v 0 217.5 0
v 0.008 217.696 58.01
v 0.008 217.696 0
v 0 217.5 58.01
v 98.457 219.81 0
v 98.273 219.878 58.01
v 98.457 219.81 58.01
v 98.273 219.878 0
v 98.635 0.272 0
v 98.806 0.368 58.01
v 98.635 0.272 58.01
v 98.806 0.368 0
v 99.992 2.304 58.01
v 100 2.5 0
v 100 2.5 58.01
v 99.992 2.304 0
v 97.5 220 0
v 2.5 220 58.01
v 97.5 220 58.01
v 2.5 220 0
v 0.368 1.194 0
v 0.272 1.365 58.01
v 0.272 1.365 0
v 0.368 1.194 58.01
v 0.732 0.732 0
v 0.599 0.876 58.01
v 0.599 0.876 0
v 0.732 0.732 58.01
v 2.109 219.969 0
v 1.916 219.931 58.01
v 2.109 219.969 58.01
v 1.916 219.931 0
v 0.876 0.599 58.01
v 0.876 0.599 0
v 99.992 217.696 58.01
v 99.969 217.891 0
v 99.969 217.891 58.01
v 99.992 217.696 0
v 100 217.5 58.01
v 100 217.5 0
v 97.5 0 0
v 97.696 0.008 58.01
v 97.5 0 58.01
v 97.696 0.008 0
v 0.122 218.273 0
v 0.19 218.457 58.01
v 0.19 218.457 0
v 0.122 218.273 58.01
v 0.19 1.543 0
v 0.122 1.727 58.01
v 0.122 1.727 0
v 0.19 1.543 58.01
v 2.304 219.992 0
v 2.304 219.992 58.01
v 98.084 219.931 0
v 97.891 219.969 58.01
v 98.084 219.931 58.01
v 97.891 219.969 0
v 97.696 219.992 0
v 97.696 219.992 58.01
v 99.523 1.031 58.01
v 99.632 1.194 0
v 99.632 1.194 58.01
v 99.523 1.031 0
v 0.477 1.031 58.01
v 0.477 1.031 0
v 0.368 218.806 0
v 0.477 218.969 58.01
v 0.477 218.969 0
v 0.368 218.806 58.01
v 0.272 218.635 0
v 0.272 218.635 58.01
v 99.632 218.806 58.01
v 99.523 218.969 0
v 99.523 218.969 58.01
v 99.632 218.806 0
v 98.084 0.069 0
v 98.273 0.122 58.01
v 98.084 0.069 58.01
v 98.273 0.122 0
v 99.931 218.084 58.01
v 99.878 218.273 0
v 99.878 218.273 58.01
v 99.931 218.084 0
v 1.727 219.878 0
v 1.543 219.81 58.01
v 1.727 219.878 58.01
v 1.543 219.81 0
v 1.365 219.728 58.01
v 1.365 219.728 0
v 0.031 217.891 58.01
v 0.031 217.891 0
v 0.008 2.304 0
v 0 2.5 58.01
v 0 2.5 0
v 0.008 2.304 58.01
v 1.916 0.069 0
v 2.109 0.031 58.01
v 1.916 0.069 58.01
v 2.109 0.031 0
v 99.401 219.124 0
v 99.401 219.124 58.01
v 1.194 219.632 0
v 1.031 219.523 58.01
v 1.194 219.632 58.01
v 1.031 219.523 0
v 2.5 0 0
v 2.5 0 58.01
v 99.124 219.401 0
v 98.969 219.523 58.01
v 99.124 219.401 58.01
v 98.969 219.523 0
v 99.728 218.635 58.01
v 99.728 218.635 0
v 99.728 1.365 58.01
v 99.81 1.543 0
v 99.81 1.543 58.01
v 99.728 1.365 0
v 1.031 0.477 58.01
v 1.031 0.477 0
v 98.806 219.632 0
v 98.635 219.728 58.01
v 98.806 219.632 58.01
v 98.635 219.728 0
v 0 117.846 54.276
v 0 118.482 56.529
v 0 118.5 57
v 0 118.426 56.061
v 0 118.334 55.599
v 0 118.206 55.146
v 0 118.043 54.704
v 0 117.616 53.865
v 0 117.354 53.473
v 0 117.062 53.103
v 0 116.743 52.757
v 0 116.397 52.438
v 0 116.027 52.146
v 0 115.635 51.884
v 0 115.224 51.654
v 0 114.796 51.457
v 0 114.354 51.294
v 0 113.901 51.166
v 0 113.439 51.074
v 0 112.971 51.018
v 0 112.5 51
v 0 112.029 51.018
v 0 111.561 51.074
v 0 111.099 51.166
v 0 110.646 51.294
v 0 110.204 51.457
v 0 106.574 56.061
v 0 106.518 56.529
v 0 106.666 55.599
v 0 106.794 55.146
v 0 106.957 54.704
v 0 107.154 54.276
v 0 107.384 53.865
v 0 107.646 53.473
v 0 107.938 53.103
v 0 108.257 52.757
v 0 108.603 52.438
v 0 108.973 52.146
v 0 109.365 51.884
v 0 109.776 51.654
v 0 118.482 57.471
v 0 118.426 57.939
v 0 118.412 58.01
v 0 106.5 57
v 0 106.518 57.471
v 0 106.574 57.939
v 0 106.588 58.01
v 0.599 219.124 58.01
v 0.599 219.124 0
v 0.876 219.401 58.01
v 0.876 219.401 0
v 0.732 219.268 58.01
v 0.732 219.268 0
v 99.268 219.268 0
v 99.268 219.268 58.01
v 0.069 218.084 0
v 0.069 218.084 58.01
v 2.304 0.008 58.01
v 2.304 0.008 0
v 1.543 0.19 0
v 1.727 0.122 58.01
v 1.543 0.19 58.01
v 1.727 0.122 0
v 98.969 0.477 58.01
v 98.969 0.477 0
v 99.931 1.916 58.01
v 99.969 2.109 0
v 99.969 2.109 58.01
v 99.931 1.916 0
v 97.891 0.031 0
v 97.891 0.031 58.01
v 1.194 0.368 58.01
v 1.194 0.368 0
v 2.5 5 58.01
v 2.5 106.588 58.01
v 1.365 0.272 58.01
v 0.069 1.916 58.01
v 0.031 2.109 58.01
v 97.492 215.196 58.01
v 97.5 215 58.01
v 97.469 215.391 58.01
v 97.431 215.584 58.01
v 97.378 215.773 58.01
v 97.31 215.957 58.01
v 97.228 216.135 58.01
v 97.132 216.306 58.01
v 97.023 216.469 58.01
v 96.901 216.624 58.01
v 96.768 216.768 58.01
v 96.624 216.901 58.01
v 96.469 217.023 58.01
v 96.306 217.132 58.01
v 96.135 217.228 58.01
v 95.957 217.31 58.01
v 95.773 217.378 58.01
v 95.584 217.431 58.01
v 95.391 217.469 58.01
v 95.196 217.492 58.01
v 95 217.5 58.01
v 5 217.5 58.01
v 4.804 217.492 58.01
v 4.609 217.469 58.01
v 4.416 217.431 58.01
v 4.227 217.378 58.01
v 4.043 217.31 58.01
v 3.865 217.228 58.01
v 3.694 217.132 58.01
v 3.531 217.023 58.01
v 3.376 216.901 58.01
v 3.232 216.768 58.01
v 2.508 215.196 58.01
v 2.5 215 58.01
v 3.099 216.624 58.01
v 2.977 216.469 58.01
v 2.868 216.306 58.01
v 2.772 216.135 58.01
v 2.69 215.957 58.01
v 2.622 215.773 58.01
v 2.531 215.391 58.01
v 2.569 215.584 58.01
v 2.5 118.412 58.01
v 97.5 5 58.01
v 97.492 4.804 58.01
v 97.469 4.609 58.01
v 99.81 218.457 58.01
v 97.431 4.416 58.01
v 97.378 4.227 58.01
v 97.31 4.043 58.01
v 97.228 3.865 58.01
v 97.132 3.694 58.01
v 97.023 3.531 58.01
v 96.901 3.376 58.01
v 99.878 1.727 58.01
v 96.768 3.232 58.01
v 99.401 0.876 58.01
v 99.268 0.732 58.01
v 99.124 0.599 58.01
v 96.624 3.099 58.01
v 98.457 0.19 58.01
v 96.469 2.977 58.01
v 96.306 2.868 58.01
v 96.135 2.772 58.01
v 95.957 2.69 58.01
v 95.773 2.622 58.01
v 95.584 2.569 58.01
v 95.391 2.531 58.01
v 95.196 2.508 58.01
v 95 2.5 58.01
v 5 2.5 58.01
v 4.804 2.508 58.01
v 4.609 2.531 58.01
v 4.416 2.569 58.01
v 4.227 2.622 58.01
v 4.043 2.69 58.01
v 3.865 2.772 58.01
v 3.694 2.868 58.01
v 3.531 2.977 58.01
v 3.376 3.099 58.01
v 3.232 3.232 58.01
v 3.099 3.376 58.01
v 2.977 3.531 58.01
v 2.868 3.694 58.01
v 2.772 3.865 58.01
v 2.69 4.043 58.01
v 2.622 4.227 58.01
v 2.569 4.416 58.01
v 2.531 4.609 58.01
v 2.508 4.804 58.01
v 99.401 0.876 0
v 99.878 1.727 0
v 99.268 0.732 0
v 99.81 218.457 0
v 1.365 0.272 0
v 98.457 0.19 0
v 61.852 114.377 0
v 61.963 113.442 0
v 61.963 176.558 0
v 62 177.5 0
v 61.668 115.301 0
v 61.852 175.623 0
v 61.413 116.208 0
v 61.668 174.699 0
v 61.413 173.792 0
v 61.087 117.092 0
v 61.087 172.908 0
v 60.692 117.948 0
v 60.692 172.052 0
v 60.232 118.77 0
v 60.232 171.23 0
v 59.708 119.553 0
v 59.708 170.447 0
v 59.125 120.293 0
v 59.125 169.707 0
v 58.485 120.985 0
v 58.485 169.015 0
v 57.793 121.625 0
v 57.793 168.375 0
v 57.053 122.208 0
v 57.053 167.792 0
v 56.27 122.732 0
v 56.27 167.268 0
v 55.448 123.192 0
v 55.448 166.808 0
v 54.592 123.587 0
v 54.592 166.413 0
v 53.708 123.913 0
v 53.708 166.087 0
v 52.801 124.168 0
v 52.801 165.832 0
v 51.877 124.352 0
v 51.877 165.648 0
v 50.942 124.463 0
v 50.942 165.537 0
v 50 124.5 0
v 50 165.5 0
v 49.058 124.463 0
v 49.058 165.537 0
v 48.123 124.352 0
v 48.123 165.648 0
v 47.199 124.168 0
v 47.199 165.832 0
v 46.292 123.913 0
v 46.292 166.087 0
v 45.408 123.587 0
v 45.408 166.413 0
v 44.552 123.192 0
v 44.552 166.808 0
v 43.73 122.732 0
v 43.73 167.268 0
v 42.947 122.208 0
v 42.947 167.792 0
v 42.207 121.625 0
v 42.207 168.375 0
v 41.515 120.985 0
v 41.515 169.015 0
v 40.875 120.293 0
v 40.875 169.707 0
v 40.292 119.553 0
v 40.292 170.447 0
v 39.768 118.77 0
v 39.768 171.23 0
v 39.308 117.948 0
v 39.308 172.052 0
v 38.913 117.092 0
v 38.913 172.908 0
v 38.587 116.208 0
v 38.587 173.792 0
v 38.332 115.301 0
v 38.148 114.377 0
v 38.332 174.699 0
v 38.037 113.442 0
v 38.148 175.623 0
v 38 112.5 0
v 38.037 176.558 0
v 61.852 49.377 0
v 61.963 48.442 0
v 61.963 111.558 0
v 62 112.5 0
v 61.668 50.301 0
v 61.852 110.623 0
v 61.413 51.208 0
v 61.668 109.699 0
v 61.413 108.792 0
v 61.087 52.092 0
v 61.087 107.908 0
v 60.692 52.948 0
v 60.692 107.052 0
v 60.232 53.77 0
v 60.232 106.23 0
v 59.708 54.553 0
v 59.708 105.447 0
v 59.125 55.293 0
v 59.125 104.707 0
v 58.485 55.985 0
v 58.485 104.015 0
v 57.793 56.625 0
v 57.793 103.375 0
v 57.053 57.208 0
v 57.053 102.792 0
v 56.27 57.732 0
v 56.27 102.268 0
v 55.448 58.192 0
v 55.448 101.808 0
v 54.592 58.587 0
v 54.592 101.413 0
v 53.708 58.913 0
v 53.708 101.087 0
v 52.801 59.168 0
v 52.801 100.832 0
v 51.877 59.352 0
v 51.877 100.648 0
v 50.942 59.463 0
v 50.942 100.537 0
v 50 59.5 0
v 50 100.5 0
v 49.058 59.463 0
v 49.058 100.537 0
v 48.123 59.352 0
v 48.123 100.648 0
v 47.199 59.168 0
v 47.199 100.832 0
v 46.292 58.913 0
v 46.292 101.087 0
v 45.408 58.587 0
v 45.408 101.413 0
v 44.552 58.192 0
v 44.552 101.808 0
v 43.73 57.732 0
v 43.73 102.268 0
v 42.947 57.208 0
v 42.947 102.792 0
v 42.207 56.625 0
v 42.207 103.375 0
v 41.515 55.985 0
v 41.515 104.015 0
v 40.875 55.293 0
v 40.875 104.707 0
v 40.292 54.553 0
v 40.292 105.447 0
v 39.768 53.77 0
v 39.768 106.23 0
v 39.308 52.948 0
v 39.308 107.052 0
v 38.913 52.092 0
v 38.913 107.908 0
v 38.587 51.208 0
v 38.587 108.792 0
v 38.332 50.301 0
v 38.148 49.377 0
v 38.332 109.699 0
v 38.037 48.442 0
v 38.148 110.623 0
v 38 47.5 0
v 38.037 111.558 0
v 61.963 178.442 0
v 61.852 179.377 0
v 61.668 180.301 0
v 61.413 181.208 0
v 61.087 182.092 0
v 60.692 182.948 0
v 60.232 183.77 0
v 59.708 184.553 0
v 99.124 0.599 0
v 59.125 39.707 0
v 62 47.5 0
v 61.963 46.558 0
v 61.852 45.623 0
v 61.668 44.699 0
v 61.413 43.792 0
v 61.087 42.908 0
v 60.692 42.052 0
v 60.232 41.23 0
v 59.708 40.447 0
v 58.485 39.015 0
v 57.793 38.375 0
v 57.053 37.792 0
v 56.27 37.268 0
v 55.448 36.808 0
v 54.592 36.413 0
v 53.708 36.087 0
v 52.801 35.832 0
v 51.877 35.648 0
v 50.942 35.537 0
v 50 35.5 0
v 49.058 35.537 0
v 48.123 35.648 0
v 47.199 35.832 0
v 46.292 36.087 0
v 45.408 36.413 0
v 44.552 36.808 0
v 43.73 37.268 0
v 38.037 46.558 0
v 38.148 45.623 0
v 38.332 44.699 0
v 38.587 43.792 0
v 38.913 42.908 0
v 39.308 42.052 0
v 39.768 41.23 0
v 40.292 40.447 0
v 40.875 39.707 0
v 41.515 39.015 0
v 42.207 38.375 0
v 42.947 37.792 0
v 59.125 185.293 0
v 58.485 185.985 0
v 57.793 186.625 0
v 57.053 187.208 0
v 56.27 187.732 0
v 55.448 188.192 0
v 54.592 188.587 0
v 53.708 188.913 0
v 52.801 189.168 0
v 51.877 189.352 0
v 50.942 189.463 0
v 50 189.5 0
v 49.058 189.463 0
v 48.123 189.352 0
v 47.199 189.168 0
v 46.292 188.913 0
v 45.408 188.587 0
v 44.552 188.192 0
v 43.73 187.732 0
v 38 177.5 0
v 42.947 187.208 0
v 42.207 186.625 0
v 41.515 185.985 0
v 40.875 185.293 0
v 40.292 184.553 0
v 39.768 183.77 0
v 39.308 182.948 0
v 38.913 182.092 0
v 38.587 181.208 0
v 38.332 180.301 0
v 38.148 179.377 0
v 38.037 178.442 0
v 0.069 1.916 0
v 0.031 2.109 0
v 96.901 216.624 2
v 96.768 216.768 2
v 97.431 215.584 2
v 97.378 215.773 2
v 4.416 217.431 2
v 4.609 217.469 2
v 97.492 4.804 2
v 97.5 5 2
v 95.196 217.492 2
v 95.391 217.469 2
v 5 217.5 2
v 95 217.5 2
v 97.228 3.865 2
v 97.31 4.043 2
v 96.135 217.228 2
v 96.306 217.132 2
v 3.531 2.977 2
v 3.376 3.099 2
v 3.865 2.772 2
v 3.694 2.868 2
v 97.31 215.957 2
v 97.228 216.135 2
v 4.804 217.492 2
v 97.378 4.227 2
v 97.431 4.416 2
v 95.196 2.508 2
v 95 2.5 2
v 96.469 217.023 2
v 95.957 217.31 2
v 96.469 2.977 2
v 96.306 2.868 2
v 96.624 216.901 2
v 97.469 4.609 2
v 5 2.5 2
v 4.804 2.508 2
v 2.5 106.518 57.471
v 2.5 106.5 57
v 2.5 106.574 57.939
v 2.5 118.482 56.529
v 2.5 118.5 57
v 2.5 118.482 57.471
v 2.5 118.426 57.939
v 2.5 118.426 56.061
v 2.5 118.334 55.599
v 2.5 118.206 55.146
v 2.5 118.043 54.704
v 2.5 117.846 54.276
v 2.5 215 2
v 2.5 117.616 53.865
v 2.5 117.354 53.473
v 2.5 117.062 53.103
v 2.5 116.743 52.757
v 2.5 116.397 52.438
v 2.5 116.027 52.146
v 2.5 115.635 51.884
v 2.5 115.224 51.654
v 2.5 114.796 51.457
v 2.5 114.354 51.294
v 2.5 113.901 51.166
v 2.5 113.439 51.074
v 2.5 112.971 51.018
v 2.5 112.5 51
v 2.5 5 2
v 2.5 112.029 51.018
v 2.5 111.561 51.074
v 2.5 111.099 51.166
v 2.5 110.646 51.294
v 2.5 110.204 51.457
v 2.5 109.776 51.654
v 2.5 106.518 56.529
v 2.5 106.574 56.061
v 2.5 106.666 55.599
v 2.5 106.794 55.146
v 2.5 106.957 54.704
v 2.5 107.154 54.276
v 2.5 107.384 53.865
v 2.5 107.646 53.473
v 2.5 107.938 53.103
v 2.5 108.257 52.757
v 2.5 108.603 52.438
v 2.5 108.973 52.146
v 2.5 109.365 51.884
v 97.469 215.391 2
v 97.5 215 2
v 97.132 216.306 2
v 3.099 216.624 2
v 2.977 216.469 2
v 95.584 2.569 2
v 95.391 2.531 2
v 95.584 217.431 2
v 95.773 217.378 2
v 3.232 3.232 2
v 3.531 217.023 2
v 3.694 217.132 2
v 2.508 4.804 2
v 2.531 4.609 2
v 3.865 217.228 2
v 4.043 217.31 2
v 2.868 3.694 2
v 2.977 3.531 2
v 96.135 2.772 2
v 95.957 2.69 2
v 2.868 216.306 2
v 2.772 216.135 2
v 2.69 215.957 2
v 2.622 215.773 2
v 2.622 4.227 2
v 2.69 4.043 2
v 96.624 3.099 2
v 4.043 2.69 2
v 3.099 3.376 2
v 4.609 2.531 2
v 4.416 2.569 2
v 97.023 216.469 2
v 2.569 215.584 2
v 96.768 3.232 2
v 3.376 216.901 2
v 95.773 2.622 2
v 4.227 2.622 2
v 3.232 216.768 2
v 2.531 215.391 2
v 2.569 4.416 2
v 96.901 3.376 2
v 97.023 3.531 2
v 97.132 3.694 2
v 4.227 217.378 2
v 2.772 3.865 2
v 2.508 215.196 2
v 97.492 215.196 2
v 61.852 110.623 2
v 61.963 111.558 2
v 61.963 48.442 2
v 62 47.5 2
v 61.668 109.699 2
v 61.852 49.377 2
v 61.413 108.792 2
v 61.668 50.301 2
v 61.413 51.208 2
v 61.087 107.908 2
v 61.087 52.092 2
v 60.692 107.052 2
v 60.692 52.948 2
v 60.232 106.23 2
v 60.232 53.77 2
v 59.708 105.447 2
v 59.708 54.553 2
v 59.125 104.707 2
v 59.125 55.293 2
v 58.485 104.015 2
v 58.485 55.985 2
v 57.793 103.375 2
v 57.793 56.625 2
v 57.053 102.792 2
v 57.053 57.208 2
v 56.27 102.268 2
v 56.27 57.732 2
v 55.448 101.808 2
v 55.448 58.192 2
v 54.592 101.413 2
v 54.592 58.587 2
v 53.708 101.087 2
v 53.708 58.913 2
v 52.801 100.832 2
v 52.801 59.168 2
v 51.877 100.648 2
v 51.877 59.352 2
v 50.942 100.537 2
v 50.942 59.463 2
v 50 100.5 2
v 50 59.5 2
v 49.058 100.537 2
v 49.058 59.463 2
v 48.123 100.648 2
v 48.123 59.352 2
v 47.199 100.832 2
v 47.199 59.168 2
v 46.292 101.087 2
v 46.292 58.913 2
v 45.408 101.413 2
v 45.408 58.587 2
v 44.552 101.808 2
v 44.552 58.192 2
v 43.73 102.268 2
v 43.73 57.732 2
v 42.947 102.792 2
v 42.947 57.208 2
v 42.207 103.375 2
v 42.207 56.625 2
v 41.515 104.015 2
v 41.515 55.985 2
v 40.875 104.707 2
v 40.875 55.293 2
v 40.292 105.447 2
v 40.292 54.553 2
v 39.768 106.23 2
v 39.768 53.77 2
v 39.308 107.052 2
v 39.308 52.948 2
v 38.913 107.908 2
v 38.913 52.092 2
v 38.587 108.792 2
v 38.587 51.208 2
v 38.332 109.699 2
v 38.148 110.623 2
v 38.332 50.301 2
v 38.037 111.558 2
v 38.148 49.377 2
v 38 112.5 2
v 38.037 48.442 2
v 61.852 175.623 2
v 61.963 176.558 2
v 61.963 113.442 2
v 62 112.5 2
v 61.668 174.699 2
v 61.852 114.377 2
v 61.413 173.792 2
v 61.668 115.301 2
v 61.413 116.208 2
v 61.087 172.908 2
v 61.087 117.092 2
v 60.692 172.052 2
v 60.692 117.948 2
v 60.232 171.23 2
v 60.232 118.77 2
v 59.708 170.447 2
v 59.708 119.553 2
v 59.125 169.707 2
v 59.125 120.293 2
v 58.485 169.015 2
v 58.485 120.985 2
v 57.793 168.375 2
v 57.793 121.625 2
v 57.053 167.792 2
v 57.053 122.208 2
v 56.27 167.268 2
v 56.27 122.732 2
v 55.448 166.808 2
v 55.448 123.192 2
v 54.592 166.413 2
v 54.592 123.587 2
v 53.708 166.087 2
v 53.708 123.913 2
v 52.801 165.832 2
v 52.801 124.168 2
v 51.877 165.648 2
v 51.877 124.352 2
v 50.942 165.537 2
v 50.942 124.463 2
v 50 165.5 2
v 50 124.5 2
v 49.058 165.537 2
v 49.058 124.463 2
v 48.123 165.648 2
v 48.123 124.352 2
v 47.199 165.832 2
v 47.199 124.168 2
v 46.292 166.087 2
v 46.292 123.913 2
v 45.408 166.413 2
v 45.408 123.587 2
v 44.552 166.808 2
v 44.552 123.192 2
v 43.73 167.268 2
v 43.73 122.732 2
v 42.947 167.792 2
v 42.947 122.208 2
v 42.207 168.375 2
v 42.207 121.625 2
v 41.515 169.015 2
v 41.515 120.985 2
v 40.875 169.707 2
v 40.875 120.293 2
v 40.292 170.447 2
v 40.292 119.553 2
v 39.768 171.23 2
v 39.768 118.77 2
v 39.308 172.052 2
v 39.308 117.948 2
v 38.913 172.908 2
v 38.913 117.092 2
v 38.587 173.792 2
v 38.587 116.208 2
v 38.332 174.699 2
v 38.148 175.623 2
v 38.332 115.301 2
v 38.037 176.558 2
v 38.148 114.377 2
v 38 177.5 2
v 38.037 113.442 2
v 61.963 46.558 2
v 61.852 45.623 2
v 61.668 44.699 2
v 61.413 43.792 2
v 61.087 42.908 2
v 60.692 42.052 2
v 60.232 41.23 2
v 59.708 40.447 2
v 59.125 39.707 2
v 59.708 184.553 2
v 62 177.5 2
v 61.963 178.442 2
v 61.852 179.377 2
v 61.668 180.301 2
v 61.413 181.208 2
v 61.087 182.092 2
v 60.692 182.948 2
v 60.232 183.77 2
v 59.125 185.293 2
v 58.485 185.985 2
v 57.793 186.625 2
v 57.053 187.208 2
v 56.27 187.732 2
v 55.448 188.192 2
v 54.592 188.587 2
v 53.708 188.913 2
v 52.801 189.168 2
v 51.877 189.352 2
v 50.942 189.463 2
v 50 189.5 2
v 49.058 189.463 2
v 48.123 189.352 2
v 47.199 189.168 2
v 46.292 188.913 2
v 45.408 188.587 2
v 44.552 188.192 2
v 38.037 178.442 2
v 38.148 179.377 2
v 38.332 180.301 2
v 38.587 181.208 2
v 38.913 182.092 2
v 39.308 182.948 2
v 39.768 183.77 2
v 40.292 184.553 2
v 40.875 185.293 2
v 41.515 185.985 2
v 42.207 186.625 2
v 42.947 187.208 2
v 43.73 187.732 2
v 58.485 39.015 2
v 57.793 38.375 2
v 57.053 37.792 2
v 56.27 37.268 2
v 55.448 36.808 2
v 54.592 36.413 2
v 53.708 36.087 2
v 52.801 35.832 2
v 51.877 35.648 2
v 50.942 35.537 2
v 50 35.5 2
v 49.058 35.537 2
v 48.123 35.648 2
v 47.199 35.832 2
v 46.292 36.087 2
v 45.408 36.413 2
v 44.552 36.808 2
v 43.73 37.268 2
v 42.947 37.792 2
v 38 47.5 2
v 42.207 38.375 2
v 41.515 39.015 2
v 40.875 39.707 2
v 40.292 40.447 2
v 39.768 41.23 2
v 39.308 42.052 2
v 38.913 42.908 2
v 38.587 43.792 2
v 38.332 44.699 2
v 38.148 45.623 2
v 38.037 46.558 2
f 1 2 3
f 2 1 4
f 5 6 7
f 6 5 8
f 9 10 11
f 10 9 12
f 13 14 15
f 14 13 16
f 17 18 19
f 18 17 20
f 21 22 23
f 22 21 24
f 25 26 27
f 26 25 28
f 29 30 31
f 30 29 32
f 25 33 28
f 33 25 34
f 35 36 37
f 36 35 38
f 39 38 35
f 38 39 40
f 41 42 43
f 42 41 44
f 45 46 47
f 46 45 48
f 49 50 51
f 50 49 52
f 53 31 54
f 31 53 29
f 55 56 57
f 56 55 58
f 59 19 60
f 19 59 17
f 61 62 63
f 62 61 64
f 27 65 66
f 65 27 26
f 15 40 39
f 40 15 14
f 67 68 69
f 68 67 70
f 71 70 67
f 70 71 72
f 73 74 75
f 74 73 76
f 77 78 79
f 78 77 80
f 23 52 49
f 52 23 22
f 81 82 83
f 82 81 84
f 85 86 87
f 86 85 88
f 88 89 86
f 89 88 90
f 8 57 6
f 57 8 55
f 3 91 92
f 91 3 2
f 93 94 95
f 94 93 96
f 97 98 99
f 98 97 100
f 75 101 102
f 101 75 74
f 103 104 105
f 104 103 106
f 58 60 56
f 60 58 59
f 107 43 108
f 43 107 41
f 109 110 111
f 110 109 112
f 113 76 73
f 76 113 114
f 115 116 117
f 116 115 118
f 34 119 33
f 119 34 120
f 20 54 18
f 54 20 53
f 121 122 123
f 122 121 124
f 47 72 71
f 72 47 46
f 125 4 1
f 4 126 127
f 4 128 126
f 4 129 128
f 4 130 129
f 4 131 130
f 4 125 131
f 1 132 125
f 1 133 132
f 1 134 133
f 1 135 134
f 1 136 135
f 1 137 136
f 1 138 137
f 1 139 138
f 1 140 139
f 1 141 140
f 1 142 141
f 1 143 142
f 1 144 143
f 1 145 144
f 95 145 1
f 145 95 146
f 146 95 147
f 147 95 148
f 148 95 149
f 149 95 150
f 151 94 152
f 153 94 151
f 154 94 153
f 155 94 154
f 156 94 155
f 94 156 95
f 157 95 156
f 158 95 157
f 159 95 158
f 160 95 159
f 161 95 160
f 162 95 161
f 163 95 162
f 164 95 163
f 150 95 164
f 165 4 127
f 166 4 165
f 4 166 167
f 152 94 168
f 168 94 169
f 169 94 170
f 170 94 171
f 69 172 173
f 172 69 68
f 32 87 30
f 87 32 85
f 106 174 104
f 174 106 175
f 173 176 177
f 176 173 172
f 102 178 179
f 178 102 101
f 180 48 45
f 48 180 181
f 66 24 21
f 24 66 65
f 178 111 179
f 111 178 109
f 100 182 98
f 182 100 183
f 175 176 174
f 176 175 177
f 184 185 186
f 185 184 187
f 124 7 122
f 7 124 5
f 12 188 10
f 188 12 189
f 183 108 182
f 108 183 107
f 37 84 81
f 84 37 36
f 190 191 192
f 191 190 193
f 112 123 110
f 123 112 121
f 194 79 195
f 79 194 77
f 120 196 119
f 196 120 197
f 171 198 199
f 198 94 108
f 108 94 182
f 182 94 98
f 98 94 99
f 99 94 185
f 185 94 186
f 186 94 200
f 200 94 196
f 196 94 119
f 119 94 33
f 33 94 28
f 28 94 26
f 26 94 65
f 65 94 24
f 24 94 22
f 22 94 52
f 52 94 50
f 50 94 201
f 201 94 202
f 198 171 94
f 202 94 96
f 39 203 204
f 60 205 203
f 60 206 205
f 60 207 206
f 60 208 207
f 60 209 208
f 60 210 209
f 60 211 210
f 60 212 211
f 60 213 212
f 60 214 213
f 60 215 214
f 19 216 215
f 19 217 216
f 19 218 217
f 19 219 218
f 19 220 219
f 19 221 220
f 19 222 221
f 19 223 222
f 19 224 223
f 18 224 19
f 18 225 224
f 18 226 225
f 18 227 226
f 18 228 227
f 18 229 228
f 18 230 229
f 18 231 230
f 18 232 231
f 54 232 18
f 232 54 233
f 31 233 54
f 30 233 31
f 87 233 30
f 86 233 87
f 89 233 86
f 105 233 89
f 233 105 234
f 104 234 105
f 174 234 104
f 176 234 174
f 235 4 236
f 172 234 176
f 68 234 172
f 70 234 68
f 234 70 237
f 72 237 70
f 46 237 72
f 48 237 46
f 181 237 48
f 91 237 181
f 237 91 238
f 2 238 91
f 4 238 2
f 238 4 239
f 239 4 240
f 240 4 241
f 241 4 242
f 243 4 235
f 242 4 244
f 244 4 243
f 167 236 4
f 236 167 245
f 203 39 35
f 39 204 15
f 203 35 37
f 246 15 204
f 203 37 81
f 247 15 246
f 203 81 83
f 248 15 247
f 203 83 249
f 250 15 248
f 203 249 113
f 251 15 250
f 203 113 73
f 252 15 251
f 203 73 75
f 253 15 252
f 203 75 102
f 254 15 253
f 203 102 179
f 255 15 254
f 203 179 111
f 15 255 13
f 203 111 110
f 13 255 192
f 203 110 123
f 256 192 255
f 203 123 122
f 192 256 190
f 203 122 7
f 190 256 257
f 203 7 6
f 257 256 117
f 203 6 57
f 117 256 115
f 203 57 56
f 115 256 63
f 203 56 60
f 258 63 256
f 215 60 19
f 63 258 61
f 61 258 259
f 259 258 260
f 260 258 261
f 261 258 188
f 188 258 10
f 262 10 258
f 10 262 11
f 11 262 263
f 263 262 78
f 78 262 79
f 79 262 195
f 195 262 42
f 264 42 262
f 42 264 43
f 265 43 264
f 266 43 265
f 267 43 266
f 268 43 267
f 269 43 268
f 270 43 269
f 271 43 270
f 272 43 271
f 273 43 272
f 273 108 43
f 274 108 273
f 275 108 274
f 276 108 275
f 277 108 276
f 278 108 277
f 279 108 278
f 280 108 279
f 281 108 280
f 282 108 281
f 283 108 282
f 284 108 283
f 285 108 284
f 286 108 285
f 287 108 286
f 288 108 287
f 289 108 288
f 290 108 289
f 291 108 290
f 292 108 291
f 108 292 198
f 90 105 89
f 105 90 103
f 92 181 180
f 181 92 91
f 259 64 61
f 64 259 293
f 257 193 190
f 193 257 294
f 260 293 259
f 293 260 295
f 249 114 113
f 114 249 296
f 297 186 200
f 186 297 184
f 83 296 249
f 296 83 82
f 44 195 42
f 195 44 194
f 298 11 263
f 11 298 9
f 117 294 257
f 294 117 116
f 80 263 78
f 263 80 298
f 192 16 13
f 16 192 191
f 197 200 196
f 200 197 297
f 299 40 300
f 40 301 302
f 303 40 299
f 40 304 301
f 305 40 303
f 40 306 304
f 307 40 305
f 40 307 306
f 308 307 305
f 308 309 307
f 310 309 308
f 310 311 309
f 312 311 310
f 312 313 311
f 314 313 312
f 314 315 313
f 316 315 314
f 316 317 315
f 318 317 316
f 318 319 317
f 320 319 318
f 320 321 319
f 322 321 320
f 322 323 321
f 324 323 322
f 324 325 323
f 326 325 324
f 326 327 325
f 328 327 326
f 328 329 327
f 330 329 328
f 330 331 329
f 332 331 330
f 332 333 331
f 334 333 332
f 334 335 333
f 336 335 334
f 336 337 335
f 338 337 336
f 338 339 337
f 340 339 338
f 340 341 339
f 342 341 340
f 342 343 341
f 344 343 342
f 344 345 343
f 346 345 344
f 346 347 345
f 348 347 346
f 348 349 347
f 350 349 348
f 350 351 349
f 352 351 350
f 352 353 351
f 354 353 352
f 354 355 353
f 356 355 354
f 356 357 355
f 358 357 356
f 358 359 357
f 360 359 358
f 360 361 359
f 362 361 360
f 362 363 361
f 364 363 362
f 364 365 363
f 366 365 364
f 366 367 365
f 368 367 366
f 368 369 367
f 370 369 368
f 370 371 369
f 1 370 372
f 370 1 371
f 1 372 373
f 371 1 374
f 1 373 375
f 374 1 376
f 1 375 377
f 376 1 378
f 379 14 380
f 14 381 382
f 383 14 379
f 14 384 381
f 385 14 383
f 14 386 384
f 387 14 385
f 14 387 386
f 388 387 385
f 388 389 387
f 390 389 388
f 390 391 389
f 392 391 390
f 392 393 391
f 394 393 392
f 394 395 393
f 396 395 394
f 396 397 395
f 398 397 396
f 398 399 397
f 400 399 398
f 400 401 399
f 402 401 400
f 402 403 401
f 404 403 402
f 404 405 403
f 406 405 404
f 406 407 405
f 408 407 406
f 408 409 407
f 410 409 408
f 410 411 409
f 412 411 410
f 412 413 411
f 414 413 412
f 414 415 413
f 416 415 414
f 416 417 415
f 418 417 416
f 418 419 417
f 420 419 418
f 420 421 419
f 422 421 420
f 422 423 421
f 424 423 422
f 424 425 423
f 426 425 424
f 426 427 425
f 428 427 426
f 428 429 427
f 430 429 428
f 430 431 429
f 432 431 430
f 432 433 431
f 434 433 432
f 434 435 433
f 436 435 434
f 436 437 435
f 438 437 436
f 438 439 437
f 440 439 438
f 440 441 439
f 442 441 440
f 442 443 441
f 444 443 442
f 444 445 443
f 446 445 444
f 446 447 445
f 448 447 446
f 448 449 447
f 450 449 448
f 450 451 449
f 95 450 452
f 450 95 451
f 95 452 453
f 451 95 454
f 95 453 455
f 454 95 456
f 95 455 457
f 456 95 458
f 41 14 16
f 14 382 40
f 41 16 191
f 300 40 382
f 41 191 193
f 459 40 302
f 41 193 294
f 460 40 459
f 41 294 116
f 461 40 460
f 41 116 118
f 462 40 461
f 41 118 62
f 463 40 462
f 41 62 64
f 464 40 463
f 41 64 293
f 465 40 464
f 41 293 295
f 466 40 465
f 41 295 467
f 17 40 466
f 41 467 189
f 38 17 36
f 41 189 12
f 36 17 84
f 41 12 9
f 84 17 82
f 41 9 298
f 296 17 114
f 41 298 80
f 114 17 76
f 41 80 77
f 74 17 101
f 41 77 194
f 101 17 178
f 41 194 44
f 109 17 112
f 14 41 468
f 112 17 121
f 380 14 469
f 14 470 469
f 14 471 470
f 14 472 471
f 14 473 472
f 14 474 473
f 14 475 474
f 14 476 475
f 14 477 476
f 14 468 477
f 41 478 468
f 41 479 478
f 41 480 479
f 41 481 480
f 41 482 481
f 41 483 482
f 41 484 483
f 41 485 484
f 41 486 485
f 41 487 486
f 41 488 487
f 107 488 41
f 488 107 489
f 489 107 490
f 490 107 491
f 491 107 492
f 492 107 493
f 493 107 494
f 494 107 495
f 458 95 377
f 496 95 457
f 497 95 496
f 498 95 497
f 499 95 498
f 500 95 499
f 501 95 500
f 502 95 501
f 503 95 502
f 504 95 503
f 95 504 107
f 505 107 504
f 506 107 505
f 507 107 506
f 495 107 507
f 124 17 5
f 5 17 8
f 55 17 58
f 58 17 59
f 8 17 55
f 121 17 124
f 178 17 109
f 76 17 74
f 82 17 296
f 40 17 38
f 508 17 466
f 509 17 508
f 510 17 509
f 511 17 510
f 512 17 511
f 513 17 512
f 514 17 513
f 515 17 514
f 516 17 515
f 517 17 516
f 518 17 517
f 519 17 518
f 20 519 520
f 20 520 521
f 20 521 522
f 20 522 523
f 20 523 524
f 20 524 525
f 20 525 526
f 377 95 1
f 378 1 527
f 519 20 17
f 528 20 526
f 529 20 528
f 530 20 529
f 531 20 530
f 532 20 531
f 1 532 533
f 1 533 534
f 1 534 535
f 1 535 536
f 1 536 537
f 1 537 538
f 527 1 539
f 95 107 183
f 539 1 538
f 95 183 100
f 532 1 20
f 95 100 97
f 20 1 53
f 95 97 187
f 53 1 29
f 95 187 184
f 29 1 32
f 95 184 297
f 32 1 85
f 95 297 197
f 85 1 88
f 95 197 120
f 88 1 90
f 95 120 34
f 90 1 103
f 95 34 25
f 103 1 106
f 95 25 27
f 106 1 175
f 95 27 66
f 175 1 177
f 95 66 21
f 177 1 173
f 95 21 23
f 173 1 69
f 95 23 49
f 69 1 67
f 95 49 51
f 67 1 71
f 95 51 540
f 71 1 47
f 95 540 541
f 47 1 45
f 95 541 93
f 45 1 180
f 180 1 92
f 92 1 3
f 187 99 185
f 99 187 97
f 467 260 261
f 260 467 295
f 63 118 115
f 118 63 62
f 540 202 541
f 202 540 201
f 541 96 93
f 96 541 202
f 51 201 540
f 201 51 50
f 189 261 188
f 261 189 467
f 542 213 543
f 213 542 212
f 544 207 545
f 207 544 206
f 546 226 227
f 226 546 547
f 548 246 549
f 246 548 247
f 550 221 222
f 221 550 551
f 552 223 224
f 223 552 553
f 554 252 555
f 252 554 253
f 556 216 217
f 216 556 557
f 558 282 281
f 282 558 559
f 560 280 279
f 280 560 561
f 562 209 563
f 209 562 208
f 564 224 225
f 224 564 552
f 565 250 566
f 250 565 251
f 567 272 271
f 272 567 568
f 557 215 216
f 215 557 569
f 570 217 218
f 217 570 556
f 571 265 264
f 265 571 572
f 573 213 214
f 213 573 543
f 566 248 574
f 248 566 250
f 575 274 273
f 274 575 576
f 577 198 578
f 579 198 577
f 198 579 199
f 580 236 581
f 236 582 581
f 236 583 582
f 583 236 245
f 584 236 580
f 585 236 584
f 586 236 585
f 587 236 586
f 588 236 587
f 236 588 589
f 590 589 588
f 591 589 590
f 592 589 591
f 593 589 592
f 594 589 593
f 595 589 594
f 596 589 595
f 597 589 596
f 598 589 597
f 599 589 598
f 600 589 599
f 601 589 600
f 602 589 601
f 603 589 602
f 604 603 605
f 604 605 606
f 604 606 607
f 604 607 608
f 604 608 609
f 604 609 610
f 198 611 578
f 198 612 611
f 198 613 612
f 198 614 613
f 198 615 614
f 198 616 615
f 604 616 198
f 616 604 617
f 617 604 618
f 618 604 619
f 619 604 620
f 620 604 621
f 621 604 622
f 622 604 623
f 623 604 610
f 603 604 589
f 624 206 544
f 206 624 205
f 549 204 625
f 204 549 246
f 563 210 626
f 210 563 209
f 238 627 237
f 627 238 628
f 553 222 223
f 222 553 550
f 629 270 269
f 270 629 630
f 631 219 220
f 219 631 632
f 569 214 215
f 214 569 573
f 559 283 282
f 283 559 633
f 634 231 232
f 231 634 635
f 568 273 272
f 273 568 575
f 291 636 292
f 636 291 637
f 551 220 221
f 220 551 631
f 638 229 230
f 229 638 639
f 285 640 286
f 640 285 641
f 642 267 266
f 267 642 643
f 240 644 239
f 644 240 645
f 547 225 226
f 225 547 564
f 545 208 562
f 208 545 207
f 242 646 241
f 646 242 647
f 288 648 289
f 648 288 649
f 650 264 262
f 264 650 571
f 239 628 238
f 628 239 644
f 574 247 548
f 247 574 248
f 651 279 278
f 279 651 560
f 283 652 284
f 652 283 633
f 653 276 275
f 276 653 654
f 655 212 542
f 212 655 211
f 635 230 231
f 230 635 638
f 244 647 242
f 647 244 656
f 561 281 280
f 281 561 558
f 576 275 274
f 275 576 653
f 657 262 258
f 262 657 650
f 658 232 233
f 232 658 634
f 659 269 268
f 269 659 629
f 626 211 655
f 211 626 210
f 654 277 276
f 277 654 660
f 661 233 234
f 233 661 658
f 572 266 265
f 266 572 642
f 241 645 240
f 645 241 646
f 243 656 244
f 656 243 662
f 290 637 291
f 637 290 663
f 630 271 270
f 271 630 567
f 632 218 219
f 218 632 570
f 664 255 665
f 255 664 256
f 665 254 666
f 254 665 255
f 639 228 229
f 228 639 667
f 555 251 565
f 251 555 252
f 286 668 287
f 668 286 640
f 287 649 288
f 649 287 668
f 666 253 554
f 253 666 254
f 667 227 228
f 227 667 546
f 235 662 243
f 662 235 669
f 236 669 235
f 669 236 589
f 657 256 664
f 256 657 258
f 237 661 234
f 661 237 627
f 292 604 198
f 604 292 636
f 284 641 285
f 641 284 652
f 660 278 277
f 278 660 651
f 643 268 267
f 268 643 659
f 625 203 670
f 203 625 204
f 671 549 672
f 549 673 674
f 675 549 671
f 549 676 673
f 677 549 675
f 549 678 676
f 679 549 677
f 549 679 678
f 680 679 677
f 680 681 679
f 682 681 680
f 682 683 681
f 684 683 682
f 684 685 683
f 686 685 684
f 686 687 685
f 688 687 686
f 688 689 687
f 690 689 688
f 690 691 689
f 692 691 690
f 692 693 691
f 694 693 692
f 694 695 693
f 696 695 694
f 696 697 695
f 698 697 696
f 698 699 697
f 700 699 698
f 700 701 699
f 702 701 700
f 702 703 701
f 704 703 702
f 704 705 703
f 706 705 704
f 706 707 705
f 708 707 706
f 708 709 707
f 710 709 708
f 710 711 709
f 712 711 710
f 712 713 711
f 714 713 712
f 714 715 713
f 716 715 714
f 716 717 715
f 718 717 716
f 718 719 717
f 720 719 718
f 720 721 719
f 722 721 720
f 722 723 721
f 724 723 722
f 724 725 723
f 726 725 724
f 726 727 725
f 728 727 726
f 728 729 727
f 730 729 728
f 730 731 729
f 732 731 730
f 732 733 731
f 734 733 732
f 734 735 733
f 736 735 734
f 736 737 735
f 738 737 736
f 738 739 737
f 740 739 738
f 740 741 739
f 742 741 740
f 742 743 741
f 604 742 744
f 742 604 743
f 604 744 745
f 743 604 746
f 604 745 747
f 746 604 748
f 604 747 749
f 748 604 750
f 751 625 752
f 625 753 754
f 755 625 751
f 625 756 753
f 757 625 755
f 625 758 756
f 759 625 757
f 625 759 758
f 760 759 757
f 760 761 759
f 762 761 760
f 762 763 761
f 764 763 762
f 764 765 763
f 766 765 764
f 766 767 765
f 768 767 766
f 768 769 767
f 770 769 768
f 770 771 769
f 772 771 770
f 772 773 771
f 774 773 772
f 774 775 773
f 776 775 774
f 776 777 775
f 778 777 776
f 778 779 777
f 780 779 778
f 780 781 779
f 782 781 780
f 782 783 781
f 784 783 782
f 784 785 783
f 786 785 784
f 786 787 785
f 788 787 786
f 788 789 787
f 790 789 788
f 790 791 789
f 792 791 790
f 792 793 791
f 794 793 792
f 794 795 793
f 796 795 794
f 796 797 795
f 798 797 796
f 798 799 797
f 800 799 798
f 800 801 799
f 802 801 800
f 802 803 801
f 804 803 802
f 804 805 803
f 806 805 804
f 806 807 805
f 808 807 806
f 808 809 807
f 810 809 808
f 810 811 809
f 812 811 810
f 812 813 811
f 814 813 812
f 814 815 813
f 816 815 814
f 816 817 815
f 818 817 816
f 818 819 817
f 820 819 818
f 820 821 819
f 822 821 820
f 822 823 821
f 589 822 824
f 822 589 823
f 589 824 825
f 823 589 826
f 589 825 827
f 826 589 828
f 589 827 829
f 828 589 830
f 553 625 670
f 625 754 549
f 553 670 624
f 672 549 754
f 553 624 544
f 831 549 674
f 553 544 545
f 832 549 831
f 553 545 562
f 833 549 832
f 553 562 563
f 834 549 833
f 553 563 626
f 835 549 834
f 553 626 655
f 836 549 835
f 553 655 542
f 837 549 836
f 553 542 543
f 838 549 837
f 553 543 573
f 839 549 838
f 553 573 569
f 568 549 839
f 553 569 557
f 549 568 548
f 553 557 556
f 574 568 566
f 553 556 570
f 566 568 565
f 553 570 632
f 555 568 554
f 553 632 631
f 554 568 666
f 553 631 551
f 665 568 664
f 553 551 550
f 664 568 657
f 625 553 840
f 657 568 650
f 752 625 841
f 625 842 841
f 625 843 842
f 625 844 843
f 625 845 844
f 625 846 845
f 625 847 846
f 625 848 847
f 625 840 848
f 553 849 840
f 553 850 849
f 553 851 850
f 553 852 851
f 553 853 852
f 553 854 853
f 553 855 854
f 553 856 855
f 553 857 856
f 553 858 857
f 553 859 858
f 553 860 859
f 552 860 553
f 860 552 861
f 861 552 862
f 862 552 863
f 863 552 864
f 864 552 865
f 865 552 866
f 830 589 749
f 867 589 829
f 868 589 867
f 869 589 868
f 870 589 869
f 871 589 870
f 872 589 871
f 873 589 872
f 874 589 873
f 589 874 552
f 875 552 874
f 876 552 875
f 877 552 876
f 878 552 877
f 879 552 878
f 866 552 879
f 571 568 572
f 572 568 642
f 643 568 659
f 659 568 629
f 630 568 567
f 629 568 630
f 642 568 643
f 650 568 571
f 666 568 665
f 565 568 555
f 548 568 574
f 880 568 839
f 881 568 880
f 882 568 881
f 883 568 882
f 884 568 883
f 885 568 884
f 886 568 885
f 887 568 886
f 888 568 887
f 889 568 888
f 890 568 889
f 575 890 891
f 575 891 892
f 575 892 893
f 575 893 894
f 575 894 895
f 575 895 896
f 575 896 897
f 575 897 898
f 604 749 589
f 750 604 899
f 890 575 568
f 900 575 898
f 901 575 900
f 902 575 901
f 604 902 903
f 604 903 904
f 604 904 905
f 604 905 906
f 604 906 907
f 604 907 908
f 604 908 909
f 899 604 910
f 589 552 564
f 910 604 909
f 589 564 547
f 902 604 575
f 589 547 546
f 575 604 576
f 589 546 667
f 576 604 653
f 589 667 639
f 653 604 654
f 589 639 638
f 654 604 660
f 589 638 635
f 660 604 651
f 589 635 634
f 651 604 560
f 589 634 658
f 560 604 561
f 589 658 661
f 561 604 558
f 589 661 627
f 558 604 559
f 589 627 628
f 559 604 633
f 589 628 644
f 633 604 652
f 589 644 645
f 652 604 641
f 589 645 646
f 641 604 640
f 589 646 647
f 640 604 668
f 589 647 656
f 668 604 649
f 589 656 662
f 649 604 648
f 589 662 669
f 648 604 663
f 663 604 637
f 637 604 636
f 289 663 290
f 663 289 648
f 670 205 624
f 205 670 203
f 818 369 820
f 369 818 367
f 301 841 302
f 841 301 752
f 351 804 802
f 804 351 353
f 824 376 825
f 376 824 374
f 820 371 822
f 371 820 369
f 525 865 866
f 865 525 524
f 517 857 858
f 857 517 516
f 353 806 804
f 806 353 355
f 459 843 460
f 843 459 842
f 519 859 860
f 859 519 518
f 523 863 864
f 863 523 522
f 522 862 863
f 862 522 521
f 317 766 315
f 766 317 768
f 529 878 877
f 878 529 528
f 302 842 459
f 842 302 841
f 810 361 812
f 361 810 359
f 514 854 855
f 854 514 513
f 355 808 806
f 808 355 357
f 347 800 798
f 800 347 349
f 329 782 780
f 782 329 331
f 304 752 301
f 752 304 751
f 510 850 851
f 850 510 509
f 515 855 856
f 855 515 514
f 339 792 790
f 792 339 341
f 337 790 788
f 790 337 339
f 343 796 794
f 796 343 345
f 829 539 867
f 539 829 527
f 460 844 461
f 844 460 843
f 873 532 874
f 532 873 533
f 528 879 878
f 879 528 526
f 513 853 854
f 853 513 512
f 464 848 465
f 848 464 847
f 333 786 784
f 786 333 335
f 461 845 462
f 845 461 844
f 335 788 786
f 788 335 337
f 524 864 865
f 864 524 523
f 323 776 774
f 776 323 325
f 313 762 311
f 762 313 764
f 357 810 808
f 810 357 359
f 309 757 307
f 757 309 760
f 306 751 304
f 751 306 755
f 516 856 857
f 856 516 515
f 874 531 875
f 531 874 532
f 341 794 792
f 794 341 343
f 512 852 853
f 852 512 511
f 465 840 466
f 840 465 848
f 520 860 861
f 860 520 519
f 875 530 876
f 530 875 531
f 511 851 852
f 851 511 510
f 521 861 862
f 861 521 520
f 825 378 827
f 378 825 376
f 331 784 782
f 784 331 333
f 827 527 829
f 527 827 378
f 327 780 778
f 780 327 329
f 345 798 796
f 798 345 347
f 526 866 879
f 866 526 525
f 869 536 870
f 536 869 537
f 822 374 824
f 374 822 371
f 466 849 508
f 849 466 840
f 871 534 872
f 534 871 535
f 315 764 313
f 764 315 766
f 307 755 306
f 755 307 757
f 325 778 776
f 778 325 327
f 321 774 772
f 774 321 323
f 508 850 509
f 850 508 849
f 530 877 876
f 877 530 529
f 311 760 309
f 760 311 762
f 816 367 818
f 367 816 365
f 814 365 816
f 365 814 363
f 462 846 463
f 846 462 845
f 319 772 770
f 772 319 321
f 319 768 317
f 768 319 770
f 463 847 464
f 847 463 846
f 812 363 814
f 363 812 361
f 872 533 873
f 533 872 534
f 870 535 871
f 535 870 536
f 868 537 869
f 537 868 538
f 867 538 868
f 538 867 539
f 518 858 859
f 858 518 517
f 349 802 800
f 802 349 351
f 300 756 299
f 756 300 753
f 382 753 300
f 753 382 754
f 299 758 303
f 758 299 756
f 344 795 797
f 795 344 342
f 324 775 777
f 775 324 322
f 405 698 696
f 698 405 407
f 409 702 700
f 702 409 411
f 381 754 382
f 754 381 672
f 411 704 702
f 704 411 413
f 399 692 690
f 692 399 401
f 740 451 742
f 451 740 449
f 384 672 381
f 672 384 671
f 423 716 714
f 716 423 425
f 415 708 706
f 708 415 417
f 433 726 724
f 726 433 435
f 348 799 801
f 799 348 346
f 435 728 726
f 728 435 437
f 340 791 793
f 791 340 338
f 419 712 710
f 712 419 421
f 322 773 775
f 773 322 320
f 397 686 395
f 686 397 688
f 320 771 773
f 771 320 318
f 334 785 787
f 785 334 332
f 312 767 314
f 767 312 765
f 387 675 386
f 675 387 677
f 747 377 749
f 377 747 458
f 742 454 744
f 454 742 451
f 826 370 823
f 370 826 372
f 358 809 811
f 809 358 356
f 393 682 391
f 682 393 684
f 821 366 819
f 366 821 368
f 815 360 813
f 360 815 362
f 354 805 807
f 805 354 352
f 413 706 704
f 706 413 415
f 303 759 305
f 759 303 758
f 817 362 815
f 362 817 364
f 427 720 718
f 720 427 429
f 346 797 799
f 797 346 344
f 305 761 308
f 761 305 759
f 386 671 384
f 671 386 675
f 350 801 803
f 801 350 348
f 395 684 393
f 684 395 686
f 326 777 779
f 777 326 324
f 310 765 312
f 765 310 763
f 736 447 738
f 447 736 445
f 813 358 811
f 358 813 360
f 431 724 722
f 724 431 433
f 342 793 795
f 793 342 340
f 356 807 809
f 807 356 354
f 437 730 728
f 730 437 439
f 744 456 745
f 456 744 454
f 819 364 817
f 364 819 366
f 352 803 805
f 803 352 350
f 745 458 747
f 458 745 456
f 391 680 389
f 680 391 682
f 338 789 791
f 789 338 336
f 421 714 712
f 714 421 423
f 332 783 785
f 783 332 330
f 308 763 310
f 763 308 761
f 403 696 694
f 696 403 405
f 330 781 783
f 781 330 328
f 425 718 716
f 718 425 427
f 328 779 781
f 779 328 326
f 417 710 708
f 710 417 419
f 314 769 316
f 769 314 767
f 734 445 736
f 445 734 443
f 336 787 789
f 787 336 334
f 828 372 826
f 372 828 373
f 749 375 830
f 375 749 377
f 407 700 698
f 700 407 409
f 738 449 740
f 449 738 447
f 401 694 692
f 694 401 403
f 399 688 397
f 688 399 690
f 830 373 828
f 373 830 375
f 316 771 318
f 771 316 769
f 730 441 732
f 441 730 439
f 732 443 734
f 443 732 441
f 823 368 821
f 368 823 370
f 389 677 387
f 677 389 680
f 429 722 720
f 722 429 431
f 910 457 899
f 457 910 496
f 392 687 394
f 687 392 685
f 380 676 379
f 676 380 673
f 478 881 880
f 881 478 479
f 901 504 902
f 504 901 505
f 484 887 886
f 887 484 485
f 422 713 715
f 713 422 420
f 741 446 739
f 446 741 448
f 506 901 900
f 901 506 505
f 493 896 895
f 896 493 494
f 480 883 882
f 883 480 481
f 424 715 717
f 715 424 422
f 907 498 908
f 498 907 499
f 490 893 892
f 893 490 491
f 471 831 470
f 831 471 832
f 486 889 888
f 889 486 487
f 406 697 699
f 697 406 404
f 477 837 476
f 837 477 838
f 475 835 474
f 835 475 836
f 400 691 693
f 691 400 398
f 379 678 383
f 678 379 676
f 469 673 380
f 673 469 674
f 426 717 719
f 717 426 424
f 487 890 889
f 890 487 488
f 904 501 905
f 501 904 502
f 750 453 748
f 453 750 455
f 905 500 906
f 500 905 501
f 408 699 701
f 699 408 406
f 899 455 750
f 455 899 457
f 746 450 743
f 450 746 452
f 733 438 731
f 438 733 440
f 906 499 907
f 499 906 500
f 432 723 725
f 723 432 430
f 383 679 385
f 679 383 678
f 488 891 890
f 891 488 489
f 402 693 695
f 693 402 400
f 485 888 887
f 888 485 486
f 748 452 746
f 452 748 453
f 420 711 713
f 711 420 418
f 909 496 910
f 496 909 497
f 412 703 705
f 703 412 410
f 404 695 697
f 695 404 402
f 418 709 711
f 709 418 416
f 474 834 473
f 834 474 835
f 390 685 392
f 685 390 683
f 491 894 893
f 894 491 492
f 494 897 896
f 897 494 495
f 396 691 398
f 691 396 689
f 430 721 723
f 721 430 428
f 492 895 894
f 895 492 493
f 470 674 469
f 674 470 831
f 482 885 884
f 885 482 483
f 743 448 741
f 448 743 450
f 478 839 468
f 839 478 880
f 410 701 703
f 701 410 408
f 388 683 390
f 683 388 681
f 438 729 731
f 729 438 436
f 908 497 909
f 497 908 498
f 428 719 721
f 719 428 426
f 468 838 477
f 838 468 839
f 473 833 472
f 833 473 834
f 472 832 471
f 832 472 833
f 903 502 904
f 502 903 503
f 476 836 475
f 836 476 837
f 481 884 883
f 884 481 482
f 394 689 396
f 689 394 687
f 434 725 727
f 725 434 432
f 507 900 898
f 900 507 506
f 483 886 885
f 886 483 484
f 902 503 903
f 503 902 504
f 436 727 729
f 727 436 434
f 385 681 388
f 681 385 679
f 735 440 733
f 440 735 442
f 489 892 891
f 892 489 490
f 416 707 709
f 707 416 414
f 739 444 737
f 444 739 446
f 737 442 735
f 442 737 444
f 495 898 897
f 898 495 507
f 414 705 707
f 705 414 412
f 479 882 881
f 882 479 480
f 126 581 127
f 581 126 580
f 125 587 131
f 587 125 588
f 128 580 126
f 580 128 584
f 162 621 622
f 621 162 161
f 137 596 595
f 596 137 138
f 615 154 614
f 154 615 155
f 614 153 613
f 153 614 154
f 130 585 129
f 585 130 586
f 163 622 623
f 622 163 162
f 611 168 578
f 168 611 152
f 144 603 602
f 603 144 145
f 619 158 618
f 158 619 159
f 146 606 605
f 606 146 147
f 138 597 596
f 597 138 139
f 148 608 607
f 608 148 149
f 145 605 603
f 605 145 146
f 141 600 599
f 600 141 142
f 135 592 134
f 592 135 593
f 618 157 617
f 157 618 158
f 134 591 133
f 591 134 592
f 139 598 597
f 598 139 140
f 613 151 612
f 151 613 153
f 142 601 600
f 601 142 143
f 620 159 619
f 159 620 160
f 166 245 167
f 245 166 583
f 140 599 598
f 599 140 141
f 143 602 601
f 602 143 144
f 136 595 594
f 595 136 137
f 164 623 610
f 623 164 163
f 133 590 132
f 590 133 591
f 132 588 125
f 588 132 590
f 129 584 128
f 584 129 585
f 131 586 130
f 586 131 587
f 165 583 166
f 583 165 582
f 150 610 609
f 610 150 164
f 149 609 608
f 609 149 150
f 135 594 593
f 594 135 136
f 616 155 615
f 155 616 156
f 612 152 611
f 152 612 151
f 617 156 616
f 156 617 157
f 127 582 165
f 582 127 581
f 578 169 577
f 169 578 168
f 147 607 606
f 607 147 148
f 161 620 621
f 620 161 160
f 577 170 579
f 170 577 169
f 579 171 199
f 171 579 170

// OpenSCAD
$fn=80;

// Box dimensions.
length = 220;
width = 100;
height = 58;
cornerRadius = 2.5;

// Button hole dimensions.
buttonHoleRadius = 12;

translate([2.5, 2.5, 0]){
    difference() {
        // Box.
        roundedBox(length, width, height, cornerRadius); 
        translate([2.5,2.5,2]) {
            roundedBox(length-5, width-5, height, cornerRadius); 
        }
        // Button hole 1.
        translate([47.5,175,-1]) {
            cylinder(5,buttonHoleRadius,buttonHoleRadius);
        }
        // Button hole 2.
        translate([47.5,110,-1]) {
            cylinder(5,buttonHoleRadius,buttonHoleRadius);
        }
        // Button hole 3.
        translate([47.5,45,-1]) {
            cylinder(5,buttonHoleRadius,buttonHoleRadius);
        }
        // Cable hole.
        translate([-5,110,57]) {
            rotate([0,90,0]) {
                cylinder(10,6,6);
            }
        }
    }
}

module roundedBox(length, width, height, radius)
{
    dRadius = 2*radius;

    //base rounded shape
    minkowski() {
        cube(size=[width-dRadius,length-dRadius, height]);
        cylinder(r=radius, h=0.01);
    }
}
